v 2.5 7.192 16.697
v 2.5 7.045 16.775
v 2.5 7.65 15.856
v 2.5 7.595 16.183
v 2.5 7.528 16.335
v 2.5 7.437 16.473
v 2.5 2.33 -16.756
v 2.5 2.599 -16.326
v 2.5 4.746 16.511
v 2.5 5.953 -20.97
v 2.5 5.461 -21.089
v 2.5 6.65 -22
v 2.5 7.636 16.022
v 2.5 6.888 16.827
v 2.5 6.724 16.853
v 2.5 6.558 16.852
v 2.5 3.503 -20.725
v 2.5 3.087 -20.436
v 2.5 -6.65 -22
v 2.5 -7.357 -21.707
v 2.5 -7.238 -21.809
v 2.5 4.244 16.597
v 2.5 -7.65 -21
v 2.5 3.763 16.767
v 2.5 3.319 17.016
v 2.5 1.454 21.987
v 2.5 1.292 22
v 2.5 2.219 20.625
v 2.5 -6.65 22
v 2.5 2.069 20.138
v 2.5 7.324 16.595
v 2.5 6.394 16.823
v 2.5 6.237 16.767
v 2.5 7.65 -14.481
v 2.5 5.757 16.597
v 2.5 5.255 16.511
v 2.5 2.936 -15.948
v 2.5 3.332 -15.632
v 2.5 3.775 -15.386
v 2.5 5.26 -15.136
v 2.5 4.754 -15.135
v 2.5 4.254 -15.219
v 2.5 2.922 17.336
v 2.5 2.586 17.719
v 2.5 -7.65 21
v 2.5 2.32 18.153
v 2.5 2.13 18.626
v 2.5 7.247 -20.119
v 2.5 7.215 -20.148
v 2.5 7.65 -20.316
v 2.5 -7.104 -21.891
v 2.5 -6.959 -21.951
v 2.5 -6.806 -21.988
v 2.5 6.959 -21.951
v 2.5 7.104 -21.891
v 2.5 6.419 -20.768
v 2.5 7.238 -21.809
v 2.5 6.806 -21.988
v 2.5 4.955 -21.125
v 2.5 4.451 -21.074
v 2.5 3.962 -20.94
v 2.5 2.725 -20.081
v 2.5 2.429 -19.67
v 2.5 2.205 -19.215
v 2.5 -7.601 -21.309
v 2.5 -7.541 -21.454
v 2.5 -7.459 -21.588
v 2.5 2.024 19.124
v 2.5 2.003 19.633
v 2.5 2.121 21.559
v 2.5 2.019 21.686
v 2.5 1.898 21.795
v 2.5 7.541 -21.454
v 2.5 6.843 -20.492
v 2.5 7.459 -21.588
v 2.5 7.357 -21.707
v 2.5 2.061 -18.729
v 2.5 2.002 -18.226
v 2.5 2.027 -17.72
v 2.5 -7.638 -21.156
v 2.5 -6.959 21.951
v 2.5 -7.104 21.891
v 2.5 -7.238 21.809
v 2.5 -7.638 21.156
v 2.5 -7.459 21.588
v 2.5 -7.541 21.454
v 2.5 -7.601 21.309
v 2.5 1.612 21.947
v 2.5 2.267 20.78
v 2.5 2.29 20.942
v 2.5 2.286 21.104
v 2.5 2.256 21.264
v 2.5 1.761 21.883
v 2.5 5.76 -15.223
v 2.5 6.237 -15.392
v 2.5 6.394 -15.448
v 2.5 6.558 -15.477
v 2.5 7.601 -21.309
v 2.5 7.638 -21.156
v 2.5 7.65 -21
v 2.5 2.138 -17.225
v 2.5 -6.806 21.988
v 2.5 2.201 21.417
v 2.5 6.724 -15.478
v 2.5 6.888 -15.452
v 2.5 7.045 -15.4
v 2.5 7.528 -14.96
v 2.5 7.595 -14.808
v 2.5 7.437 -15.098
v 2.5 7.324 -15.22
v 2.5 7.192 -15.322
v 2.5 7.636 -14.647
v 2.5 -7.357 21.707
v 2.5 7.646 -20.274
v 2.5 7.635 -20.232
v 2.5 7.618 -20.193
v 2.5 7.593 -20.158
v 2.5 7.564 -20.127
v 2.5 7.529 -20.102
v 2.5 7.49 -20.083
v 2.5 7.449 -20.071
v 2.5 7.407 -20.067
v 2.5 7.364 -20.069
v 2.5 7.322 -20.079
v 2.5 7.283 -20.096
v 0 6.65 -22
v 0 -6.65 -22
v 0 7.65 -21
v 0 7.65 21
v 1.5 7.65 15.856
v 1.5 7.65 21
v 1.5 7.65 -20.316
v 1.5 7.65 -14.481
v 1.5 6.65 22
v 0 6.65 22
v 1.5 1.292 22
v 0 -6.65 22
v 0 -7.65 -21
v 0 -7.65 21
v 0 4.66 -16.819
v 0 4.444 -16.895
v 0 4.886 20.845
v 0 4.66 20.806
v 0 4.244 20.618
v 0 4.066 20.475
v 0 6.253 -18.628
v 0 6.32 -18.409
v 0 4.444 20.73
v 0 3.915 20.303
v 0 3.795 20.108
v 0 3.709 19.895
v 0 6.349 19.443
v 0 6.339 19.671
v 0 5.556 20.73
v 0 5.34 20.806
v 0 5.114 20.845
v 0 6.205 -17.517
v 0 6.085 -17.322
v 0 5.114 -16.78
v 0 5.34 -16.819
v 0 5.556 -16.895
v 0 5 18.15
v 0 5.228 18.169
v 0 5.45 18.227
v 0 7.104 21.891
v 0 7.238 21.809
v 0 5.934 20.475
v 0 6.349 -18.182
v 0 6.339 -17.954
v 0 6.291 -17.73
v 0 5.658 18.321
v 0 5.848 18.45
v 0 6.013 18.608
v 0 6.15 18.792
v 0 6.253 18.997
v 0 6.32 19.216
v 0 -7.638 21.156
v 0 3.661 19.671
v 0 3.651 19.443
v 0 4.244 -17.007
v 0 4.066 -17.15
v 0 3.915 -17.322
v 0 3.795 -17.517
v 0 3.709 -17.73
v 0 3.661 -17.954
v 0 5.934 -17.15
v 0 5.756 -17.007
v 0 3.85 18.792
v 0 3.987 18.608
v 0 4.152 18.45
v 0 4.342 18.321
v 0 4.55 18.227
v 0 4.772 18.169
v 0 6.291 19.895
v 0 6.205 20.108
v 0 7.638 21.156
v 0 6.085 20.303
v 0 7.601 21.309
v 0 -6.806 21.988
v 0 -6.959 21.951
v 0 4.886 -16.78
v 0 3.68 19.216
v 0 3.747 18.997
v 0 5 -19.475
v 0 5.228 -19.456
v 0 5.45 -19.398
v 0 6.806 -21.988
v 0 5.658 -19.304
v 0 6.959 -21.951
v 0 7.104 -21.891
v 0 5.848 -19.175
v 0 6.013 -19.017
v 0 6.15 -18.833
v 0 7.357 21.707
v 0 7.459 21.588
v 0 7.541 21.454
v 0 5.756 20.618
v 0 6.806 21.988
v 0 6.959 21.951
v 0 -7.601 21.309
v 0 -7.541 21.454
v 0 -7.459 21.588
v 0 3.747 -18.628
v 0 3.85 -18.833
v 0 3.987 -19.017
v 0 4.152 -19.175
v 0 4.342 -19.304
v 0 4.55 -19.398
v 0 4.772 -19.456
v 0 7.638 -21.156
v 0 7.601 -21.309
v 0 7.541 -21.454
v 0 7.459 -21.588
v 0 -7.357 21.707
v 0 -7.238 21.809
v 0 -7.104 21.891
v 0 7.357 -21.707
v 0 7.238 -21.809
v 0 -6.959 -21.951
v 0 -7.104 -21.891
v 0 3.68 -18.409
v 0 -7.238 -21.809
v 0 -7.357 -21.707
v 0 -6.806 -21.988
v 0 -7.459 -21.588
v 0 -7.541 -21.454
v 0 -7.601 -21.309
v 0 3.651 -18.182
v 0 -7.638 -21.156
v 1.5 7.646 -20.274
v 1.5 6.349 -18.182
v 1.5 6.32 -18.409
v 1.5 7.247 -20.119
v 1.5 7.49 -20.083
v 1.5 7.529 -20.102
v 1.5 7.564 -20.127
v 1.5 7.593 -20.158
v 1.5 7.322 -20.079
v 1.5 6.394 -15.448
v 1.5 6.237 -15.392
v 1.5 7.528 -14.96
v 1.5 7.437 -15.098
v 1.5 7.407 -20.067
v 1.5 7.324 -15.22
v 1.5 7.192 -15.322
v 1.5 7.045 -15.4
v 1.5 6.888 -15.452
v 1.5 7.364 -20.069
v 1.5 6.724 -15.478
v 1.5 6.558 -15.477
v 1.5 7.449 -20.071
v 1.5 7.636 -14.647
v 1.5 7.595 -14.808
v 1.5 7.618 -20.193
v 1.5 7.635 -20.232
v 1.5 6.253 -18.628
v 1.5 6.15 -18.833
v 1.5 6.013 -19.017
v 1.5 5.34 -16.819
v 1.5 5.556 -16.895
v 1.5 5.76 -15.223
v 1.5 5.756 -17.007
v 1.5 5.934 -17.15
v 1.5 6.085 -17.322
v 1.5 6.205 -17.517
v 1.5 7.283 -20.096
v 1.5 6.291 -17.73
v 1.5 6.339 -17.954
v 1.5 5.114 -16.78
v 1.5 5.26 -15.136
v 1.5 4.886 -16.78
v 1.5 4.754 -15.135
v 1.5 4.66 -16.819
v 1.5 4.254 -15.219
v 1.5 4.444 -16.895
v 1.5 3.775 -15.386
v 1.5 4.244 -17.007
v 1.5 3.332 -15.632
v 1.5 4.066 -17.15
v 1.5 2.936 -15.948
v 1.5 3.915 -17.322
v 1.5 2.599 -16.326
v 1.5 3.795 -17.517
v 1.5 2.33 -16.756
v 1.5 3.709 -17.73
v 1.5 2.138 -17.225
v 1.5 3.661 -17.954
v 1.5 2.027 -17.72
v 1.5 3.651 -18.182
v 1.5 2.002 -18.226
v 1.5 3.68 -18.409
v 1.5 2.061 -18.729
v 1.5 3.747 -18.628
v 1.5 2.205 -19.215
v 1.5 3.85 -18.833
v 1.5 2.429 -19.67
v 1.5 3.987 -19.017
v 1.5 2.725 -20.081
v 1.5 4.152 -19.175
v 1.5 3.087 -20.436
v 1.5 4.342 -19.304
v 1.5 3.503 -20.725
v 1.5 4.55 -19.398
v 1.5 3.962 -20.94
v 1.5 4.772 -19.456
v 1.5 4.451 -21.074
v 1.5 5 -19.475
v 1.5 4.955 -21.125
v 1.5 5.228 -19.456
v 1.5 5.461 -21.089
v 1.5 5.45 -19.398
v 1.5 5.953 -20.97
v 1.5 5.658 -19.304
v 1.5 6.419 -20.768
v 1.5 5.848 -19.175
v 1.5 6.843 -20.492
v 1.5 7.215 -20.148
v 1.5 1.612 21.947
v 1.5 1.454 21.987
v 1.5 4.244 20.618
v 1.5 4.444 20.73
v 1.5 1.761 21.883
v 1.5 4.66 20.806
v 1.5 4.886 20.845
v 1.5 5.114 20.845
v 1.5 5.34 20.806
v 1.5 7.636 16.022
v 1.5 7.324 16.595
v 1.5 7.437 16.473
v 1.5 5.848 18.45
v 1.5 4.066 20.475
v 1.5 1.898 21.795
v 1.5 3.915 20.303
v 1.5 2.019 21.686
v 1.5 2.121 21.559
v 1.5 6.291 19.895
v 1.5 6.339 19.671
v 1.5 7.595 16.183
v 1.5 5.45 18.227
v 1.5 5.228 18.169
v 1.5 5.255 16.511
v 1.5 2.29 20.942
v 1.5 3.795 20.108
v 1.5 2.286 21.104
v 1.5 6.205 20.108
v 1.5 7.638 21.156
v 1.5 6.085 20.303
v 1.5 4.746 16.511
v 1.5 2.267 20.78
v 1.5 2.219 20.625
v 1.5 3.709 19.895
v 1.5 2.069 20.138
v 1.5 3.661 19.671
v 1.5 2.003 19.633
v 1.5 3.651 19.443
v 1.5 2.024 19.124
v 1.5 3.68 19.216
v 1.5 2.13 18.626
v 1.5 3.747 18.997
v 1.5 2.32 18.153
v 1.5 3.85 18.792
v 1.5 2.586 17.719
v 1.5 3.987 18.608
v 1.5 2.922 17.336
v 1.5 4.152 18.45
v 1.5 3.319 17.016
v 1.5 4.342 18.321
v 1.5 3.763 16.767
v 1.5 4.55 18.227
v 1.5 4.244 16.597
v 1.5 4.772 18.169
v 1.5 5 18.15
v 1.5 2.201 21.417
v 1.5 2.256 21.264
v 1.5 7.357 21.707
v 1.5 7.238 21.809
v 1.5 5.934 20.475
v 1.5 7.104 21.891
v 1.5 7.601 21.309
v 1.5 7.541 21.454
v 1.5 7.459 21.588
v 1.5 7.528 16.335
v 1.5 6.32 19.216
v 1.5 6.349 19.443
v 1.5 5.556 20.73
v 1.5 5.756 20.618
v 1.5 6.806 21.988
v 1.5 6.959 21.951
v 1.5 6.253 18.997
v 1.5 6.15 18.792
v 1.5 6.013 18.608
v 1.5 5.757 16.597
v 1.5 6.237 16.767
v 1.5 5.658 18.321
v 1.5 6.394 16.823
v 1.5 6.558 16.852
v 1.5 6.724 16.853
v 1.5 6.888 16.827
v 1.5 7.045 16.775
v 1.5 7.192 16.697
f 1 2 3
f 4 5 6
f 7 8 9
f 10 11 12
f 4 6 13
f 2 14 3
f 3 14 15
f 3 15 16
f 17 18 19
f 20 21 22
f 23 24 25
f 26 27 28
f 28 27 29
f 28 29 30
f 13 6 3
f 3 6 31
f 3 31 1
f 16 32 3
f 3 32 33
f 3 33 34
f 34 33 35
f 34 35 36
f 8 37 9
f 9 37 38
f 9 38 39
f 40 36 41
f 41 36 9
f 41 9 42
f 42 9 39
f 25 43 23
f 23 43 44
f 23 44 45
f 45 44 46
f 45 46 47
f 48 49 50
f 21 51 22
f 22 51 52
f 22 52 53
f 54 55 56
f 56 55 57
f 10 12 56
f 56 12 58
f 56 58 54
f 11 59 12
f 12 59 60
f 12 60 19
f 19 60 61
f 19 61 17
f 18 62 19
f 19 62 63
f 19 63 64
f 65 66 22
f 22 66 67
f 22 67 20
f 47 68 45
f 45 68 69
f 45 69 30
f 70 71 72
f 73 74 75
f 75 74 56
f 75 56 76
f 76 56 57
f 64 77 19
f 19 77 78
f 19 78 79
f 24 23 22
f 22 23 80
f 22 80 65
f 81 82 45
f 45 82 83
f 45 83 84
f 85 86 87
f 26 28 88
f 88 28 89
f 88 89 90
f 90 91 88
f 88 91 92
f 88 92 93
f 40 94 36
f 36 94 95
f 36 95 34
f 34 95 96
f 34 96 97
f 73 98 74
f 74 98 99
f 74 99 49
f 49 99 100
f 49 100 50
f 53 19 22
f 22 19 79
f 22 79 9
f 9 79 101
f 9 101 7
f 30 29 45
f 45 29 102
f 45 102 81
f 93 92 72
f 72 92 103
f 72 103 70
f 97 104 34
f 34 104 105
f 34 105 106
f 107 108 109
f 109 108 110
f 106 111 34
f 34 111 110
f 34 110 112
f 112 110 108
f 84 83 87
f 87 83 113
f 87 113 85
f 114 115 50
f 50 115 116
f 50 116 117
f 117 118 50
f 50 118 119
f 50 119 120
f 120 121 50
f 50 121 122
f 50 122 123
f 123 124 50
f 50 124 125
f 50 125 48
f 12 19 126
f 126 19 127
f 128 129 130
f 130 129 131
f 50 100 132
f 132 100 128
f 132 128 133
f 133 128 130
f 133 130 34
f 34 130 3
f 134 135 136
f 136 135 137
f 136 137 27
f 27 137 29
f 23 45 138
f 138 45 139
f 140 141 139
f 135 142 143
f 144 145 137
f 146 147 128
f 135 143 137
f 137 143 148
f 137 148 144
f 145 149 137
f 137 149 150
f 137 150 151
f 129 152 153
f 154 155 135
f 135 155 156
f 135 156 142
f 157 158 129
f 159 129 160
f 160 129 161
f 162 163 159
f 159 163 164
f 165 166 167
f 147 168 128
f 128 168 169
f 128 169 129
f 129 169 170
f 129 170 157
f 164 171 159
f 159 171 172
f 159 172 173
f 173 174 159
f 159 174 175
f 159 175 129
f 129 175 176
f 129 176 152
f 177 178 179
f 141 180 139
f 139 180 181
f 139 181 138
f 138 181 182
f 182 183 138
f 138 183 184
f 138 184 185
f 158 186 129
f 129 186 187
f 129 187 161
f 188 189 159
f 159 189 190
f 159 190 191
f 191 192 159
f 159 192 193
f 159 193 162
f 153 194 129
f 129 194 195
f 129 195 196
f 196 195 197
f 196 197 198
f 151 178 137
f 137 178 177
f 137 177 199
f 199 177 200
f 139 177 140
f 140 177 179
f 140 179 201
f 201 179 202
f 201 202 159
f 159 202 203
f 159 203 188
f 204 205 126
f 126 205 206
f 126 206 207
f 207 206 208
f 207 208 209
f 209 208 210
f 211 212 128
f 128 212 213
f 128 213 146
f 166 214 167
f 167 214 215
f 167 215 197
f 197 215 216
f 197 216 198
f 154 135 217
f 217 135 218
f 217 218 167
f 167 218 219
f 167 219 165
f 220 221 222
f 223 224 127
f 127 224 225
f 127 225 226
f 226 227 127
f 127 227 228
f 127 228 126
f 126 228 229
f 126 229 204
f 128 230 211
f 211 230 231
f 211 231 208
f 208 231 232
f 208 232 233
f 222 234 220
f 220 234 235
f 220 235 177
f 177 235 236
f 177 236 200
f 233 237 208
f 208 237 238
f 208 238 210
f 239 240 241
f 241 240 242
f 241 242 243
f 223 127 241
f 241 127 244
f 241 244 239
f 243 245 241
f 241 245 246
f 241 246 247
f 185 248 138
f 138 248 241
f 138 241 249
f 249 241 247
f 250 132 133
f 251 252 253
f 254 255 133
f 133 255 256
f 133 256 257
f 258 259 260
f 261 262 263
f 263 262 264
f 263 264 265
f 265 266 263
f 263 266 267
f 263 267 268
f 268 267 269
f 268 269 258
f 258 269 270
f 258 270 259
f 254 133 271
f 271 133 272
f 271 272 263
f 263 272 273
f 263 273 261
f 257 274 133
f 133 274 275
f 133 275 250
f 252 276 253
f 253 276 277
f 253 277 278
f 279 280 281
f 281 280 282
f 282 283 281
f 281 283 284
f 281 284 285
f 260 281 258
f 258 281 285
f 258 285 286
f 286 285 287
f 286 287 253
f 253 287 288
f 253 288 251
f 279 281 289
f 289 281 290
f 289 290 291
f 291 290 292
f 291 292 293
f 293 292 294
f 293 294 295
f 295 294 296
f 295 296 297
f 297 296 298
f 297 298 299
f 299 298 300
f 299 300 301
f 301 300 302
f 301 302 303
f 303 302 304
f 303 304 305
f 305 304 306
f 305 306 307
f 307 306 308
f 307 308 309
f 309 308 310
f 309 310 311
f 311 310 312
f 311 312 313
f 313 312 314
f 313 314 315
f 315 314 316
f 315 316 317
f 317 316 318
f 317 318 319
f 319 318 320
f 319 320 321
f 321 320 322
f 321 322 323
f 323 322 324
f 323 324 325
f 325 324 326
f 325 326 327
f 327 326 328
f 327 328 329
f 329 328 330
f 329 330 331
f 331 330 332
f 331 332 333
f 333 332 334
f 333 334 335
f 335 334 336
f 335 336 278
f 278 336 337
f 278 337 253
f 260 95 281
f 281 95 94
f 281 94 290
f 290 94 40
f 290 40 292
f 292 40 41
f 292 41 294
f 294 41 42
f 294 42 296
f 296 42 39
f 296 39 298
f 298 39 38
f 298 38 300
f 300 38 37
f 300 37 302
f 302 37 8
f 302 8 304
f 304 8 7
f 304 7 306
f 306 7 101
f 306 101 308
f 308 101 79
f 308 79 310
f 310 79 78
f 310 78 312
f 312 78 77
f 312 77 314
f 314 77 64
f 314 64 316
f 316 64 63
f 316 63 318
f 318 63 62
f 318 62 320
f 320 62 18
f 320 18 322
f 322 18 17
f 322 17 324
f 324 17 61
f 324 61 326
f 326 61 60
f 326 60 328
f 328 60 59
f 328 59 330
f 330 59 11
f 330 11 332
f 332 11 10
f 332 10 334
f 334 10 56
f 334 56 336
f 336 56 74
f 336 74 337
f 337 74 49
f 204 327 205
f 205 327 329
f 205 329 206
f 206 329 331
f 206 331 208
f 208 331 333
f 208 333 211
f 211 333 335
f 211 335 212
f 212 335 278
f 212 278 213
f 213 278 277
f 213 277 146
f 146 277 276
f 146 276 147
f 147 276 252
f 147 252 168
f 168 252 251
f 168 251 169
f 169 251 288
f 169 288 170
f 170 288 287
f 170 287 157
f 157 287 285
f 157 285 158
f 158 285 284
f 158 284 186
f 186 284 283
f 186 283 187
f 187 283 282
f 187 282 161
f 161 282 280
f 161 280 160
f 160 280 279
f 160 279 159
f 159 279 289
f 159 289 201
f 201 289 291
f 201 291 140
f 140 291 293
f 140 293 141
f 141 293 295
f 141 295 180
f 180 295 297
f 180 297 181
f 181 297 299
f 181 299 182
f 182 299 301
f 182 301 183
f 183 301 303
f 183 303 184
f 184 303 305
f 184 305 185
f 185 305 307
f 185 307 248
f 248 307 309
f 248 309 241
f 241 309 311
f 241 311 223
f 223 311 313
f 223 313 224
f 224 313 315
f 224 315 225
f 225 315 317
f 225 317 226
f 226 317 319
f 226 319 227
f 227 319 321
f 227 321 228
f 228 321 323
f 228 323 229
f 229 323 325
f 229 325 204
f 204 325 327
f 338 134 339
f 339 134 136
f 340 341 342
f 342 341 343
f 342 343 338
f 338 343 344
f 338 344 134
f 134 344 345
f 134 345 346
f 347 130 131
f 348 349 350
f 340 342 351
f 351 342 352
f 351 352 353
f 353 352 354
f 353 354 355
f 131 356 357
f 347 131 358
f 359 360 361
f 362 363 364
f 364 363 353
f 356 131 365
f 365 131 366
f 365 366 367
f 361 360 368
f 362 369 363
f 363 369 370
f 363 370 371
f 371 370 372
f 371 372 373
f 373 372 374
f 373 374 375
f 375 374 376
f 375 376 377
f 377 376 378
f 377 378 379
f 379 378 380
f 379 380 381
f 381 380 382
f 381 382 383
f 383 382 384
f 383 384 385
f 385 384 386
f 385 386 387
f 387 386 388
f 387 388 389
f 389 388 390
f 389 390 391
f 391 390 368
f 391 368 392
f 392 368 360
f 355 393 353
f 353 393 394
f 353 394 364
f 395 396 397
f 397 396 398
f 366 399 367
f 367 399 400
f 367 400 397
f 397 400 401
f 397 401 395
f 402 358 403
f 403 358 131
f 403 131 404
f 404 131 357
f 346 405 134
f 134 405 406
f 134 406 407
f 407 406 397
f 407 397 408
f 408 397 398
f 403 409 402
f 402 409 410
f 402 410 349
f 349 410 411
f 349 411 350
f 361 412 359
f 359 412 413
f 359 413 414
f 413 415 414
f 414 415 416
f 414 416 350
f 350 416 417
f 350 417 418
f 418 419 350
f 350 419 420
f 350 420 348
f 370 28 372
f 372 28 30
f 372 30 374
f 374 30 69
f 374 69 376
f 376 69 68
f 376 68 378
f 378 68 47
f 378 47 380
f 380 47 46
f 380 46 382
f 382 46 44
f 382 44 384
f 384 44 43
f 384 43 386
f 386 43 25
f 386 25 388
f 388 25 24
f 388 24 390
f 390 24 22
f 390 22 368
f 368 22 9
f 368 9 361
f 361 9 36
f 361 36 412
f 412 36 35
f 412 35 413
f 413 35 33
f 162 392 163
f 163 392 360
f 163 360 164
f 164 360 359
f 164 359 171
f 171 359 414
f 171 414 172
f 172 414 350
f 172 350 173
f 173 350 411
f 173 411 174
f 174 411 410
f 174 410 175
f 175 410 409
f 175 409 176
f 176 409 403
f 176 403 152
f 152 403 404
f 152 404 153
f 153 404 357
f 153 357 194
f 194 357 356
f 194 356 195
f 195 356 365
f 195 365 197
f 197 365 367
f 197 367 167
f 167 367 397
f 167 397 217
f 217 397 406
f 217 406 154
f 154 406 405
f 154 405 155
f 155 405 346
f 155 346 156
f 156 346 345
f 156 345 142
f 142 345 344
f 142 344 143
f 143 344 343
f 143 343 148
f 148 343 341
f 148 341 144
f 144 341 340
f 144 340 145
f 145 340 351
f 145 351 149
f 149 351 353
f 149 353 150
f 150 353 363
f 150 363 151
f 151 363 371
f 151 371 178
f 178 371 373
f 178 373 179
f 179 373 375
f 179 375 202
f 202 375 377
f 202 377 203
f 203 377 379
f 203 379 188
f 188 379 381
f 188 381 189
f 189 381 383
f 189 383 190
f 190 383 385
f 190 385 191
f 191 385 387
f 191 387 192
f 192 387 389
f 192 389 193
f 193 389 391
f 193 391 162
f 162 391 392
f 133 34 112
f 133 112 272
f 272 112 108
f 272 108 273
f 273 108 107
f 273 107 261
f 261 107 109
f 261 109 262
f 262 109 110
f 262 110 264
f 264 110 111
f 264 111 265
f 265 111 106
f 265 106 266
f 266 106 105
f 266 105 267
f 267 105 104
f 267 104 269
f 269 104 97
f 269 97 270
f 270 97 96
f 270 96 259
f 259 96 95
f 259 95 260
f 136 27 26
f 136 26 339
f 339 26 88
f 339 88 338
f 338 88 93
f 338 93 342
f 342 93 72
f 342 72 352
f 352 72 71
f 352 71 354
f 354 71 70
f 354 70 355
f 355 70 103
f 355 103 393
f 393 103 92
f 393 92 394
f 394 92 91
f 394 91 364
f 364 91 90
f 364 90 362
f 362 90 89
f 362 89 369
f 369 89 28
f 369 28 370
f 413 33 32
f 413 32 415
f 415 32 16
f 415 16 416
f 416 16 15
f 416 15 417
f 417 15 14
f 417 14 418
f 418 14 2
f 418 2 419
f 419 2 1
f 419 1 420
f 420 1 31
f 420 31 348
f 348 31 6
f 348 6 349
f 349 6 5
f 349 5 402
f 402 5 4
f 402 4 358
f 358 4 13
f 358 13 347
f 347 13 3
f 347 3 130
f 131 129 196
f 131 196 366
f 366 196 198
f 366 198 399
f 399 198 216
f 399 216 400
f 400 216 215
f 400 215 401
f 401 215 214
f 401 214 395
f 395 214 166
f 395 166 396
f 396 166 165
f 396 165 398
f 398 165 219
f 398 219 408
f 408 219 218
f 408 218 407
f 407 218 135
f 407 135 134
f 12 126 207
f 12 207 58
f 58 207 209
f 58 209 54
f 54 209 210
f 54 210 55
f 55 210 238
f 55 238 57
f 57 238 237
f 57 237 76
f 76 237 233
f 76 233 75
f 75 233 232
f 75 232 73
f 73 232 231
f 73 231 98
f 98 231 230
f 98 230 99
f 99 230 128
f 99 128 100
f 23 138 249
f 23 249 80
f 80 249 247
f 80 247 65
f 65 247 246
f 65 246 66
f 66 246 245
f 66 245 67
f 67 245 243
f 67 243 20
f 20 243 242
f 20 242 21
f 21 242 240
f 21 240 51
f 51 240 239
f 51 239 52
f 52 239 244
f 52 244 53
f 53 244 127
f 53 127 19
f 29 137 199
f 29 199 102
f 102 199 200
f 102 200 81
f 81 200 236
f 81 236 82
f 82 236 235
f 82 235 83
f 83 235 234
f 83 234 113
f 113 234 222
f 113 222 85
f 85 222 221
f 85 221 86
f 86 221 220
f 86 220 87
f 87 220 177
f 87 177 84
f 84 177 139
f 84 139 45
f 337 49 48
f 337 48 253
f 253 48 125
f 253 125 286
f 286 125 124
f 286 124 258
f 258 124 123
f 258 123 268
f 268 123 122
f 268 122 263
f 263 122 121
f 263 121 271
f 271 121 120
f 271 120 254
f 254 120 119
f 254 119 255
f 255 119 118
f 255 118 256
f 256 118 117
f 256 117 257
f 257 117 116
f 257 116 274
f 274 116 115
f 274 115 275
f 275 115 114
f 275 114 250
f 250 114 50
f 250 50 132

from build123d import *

# Parameters (mm, degrees)
SKETCH1_W                                          = 44
SKETCH1_H                                          = 15.3
BOSS_EXTRUDE1_DEPTH                                = 2.5
CBORE_FOR_M2_5_PAN_HEAD_MACHINE_SCREW1_D           = 2.7
CBORE_FOR_M2_5_PAN_HEAD_MACHINE_SCREW1_CBORE_D     = 6
CBORE_FOR_M2_5_PAN_HEAD_MACHINE_SCREW1_CBORE_DEPTH = 1
CUT_EXTRUDE1_DEPTH                                 = 1
FILLET1_R                                          = 1
FILLET2_R                                          = 0.25


with BuildPart() as part:
    # Sketch1 → Boss-Extrude1 (new body)
    with BuildSketch(Plane(origin=(0, 0, 0), x_dir=(0, 0, -1), z_dir=(1, 0, 0))):
        Rectangle(SKETCH1_W, SKETCH1_H)
    extrude(amount=BOSS_EXTRUDE1_DEPTH)

    # CBORE for M2.5 Pan Head Machine Screw1 (through all)
    with Locations(Plane(origin=(2.5, 0, 0), x_dir=(0, 0, -1), z_dir=(1, 0, 0))):
        with Locations((-19.5, 5), (18.125, 5)):
            CounterBoreHole(CBORE_FOR_M2_5_PAN_HEAD_MACHINE_SCREW1_D / 2, CBORE_FOR_M2_5_PAN_HEAD_MACHINE_SCREW1_CBORE_D / 2, CBORE_FOR_M2_5_PAN_HEAD_MACHINE_SCREW1_CBORE_DEPTH)

    # Sketch5 → Cut-Extrude1 (cut)
    with BuildSketch(Plane(origin=(2.5, 0, 0), x_dir=(0, 0, -1), z_dir=(1, 0, 0))):
        with BuildLine():
            ThreePointArc((-20.906236111, 7.65), (-21.515075982, 7.222491571), (-22, 6.658312395))
            Line((-22, 6.658312395), (-22, 7.65))
            Line((-22, 7.65), (-20.906236111, 7.65))
        make_face()
    extrude(amount=-CUT_EXTRUDE1_DEPTH, mode=Mode.SUBTRACT)

    # Fillet1
    fillet1_edges = [part.edges().sort_by_distance(p)[0] for p in [
        (2, 7.65, -16.718763889),
        (2, 7.65, 18.093763889),
        (2, 3.341687605, 22),
        (0.75, 7.65, 22),
        (1.25, -7.65, -22),
        (1.25, -7.65, 22),
        (1.25, 7.65, -22),
    ]]
    fillet(fillet1_edges, radius=FILLET1_R)

    # Fillet2
    fillet2_edges = [part.edges().sort_by_distance(p)[0] for p in [
        (2, 7.65, -19.531236111),
    ]]
    fillet(fillet2_edges, radius=FILLET2_R)


solid = part.part
